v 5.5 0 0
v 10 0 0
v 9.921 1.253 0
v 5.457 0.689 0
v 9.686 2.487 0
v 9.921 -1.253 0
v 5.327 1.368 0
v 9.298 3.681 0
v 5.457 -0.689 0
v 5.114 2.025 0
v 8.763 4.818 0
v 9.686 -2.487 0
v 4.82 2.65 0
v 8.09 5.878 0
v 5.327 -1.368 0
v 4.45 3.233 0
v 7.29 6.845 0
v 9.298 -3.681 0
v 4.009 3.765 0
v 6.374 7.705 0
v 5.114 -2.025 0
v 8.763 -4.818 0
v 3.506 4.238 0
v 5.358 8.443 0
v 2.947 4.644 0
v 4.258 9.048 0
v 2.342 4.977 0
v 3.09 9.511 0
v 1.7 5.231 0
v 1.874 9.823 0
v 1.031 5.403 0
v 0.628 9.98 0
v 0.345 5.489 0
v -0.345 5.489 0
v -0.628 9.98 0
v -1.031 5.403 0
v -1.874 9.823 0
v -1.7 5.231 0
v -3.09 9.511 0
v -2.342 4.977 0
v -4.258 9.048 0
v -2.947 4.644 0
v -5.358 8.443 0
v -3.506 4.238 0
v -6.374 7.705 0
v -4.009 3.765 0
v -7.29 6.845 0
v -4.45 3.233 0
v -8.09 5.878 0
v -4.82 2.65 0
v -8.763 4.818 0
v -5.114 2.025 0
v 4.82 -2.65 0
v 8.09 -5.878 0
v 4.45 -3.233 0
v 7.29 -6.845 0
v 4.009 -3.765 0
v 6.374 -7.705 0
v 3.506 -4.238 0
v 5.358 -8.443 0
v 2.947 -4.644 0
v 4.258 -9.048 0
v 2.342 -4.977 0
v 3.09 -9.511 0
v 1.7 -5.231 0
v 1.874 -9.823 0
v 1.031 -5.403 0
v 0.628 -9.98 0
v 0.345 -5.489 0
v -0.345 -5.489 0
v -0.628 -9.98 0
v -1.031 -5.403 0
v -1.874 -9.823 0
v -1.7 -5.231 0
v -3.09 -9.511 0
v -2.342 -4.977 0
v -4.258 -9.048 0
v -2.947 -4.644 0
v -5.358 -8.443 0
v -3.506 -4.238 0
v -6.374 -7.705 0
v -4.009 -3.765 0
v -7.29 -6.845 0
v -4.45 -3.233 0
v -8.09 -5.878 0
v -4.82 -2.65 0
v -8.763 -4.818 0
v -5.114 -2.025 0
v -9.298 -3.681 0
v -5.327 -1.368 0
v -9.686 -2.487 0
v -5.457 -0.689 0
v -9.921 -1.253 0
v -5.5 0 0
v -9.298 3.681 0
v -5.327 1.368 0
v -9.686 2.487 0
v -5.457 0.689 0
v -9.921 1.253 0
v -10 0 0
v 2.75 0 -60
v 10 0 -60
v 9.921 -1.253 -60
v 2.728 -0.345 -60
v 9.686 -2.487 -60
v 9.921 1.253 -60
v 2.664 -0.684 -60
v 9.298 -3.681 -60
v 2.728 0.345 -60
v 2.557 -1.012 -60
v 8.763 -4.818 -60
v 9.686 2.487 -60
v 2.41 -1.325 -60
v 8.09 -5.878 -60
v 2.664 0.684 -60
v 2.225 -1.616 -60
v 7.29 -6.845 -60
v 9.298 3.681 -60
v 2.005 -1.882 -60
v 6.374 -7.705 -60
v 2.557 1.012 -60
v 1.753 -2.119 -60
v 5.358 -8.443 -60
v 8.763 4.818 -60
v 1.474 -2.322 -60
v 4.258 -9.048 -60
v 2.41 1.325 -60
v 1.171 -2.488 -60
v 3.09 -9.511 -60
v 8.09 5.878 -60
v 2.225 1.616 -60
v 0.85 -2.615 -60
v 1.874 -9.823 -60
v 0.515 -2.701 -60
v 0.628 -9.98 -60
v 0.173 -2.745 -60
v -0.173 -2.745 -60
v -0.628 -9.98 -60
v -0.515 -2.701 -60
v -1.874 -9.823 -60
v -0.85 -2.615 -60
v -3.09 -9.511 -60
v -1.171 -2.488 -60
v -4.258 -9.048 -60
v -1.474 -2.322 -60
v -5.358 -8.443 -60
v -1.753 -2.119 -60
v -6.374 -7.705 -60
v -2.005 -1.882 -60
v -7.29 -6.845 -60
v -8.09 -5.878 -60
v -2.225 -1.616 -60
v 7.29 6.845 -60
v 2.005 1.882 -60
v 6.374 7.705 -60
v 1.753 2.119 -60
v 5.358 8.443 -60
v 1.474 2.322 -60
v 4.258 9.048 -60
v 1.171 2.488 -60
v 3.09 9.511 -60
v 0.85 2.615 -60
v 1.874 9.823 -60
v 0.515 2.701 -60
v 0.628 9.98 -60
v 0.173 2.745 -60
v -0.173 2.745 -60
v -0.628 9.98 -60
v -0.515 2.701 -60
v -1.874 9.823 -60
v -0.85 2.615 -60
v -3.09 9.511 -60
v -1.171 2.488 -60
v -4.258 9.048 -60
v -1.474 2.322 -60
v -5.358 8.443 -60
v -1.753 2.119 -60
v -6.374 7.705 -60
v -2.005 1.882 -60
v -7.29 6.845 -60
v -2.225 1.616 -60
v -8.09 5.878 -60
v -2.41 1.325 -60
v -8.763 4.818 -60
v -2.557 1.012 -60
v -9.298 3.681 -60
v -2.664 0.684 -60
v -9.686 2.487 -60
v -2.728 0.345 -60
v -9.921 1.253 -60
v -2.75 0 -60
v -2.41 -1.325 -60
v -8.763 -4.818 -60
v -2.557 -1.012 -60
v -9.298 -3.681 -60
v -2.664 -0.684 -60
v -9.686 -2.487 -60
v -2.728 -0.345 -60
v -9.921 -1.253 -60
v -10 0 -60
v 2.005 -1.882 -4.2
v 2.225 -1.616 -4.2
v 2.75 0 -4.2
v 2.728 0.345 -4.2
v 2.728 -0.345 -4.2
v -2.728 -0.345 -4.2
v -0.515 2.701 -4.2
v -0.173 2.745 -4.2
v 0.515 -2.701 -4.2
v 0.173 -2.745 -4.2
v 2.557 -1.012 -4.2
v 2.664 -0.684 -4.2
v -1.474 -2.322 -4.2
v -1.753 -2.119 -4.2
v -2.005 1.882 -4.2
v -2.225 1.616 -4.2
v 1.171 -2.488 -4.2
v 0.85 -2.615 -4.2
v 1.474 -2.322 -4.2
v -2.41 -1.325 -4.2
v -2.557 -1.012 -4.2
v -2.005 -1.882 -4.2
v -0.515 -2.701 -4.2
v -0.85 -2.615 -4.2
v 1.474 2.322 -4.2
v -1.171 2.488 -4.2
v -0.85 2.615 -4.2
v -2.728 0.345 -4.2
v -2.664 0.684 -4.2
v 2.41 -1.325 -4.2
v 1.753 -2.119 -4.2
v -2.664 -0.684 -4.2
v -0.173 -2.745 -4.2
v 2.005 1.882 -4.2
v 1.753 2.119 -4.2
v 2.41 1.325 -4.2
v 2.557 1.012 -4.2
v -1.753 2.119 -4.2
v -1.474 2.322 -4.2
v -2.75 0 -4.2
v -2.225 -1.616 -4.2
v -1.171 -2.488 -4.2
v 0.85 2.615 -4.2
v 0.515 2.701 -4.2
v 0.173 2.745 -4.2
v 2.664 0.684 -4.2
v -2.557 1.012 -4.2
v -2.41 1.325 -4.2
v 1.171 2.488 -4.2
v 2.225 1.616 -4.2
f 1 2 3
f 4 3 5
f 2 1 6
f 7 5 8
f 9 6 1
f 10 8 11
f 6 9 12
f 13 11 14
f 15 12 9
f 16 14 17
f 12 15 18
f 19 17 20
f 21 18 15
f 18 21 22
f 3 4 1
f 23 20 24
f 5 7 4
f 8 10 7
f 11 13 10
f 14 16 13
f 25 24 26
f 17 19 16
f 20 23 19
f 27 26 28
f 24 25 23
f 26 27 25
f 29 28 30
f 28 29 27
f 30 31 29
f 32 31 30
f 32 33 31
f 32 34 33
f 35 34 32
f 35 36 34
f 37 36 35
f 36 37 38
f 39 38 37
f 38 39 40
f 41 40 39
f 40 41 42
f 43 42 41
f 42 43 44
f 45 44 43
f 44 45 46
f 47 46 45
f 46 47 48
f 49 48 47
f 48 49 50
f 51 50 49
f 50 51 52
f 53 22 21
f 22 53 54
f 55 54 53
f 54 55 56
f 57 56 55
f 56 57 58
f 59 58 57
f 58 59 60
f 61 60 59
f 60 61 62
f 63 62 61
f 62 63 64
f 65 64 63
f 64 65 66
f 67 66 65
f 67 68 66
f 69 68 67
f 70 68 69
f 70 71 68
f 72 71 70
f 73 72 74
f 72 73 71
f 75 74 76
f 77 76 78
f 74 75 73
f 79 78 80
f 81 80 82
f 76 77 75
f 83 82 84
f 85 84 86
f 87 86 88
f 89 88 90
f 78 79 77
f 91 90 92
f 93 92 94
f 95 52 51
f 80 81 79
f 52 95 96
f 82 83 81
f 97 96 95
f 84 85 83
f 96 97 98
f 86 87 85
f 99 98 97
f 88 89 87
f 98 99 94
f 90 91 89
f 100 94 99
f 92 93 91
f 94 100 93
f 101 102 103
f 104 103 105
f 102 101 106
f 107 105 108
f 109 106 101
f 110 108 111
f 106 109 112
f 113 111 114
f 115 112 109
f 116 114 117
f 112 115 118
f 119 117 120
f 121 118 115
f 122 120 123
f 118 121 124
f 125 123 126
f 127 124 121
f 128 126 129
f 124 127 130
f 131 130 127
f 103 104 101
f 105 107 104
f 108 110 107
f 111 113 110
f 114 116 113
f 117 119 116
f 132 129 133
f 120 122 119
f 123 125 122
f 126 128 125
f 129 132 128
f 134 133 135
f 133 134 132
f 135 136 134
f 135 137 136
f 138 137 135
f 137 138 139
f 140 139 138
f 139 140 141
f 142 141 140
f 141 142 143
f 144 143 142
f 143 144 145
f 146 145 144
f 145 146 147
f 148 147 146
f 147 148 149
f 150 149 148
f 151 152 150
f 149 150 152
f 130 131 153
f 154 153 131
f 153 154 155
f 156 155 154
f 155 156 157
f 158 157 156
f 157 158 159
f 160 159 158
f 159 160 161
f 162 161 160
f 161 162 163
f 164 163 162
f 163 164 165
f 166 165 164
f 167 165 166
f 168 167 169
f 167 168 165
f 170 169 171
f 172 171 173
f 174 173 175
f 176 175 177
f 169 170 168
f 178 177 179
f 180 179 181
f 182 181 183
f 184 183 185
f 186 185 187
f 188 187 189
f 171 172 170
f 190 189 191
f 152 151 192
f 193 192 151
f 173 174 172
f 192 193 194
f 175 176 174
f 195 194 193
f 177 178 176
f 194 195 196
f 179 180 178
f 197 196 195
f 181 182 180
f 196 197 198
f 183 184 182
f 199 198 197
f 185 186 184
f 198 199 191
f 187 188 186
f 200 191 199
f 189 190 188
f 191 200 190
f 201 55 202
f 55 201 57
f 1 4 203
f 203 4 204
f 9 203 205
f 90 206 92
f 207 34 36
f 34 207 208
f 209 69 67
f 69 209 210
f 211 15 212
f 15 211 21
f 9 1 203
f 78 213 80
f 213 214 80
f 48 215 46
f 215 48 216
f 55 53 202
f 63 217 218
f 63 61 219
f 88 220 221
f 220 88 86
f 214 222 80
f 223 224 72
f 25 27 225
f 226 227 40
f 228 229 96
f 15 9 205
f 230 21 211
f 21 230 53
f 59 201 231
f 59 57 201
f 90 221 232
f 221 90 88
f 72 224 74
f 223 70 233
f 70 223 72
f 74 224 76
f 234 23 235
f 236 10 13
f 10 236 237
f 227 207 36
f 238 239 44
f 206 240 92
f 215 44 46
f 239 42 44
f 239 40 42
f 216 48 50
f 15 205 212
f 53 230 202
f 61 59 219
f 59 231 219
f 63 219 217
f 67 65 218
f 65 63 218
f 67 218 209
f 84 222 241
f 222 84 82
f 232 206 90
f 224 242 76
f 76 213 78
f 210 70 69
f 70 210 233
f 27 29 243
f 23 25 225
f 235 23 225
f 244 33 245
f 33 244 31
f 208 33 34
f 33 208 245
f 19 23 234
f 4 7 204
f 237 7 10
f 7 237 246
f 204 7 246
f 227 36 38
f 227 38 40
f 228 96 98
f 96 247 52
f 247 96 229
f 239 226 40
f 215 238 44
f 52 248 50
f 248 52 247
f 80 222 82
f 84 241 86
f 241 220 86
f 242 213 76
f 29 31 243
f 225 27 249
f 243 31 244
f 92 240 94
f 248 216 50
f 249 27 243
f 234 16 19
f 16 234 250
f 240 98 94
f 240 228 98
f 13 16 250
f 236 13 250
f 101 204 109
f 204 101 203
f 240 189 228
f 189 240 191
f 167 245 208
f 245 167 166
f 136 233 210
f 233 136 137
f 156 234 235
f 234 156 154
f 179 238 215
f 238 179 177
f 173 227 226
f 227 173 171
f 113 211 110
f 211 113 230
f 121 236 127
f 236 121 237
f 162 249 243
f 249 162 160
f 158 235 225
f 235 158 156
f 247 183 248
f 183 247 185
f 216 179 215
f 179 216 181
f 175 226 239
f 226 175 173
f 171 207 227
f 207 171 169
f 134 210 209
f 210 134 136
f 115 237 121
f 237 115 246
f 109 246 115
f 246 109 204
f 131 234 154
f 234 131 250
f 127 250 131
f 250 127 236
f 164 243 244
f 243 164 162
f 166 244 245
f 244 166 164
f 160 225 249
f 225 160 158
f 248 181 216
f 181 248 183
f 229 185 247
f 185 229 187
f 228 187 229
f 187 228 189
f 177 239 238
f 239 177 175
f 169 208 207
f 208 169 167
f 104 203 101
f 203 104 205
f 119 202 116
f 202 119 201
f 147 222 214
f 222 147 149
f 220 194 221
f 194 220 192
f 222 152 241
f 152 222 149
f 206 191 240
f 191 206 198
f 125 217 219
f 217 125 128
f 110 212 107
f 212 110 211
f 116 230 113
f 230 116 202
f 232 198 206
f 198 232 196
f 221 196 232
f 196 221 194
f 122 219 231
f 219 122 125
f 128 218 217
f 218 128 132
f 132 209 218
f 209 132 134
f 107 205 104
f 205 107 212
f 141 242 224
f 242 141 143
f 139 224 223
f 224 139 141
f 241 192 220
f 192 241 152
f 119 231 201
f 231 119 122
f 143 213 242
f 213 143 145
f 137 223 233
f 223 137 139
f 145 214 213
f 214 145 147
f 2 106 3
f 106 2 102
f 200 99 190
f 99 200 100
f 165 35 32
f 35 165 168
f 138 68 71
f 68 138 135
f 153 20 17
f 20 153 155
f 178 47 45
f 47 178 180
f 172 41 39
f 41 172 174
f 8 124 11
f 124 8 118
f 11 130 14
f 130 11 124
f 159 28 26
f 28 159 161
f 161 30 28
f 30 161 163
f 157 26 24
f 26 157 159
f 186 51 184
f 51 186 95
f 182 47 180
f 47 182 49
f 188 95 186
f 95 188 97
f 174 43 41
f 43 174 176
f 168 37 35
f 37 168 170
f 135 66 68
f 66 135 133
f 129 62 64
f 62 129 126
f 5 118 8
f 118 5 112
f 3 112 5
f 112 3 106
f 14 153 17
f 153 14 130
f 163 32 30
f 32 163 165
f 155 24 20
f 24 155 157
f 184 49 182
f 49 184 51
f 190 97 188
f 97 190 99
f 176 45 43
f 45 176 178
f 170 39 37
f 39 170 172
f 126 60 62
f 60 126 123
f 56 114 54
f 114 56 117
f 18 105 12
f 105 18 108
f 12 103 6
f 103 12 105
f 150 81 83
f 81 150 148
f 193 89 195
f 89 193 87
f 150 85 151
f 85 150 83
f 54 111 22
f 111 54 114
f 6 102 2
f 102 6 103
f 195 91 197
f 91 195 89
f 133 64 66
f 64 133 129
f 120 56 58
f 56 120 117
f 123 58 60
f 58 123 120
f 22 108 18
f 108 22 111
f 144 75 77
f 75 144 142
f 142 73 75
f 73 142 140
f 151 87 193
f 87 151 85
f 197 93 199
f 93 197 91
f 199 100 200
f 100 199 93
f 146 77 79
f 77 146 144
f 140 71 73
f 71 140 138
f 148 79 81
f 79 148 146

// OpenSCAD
$fn = 50;


difference() {
	union() {
		translate(v = [0, 0, -60.0000000000]) {
			cylinder(h = 60, r = 10.0000000000);
		}
		cylinder(h = 0, r = 20.0000000000);
	}
	union() {
		translate(v = [0, 0, 0]) {
			rotate(a = [0, 0, 0]) {
				difference() {
					union() {
						#translate(v = [0, 0, -60.0000000000]) {
							cylinder(h = 60, r = 2.2500000000);
						}
						#translate(v = [0, 0, -4.2000000000]) {
							cylinder(h = 4.2000000000, r1 = 2.7500000000, r2 = 5.5000000000);
						}
						#translate(v = [0, 0, -60.0000000000]) {
							cylinder(h = 60, r = 2.7500000000);
						}
						#translate(v = [0, 0, -60.0000000000]) {
							cylinder(h = 60, r = 2.2500000000);
						}
					}
					union();
				}
			}
		}
	}
}
